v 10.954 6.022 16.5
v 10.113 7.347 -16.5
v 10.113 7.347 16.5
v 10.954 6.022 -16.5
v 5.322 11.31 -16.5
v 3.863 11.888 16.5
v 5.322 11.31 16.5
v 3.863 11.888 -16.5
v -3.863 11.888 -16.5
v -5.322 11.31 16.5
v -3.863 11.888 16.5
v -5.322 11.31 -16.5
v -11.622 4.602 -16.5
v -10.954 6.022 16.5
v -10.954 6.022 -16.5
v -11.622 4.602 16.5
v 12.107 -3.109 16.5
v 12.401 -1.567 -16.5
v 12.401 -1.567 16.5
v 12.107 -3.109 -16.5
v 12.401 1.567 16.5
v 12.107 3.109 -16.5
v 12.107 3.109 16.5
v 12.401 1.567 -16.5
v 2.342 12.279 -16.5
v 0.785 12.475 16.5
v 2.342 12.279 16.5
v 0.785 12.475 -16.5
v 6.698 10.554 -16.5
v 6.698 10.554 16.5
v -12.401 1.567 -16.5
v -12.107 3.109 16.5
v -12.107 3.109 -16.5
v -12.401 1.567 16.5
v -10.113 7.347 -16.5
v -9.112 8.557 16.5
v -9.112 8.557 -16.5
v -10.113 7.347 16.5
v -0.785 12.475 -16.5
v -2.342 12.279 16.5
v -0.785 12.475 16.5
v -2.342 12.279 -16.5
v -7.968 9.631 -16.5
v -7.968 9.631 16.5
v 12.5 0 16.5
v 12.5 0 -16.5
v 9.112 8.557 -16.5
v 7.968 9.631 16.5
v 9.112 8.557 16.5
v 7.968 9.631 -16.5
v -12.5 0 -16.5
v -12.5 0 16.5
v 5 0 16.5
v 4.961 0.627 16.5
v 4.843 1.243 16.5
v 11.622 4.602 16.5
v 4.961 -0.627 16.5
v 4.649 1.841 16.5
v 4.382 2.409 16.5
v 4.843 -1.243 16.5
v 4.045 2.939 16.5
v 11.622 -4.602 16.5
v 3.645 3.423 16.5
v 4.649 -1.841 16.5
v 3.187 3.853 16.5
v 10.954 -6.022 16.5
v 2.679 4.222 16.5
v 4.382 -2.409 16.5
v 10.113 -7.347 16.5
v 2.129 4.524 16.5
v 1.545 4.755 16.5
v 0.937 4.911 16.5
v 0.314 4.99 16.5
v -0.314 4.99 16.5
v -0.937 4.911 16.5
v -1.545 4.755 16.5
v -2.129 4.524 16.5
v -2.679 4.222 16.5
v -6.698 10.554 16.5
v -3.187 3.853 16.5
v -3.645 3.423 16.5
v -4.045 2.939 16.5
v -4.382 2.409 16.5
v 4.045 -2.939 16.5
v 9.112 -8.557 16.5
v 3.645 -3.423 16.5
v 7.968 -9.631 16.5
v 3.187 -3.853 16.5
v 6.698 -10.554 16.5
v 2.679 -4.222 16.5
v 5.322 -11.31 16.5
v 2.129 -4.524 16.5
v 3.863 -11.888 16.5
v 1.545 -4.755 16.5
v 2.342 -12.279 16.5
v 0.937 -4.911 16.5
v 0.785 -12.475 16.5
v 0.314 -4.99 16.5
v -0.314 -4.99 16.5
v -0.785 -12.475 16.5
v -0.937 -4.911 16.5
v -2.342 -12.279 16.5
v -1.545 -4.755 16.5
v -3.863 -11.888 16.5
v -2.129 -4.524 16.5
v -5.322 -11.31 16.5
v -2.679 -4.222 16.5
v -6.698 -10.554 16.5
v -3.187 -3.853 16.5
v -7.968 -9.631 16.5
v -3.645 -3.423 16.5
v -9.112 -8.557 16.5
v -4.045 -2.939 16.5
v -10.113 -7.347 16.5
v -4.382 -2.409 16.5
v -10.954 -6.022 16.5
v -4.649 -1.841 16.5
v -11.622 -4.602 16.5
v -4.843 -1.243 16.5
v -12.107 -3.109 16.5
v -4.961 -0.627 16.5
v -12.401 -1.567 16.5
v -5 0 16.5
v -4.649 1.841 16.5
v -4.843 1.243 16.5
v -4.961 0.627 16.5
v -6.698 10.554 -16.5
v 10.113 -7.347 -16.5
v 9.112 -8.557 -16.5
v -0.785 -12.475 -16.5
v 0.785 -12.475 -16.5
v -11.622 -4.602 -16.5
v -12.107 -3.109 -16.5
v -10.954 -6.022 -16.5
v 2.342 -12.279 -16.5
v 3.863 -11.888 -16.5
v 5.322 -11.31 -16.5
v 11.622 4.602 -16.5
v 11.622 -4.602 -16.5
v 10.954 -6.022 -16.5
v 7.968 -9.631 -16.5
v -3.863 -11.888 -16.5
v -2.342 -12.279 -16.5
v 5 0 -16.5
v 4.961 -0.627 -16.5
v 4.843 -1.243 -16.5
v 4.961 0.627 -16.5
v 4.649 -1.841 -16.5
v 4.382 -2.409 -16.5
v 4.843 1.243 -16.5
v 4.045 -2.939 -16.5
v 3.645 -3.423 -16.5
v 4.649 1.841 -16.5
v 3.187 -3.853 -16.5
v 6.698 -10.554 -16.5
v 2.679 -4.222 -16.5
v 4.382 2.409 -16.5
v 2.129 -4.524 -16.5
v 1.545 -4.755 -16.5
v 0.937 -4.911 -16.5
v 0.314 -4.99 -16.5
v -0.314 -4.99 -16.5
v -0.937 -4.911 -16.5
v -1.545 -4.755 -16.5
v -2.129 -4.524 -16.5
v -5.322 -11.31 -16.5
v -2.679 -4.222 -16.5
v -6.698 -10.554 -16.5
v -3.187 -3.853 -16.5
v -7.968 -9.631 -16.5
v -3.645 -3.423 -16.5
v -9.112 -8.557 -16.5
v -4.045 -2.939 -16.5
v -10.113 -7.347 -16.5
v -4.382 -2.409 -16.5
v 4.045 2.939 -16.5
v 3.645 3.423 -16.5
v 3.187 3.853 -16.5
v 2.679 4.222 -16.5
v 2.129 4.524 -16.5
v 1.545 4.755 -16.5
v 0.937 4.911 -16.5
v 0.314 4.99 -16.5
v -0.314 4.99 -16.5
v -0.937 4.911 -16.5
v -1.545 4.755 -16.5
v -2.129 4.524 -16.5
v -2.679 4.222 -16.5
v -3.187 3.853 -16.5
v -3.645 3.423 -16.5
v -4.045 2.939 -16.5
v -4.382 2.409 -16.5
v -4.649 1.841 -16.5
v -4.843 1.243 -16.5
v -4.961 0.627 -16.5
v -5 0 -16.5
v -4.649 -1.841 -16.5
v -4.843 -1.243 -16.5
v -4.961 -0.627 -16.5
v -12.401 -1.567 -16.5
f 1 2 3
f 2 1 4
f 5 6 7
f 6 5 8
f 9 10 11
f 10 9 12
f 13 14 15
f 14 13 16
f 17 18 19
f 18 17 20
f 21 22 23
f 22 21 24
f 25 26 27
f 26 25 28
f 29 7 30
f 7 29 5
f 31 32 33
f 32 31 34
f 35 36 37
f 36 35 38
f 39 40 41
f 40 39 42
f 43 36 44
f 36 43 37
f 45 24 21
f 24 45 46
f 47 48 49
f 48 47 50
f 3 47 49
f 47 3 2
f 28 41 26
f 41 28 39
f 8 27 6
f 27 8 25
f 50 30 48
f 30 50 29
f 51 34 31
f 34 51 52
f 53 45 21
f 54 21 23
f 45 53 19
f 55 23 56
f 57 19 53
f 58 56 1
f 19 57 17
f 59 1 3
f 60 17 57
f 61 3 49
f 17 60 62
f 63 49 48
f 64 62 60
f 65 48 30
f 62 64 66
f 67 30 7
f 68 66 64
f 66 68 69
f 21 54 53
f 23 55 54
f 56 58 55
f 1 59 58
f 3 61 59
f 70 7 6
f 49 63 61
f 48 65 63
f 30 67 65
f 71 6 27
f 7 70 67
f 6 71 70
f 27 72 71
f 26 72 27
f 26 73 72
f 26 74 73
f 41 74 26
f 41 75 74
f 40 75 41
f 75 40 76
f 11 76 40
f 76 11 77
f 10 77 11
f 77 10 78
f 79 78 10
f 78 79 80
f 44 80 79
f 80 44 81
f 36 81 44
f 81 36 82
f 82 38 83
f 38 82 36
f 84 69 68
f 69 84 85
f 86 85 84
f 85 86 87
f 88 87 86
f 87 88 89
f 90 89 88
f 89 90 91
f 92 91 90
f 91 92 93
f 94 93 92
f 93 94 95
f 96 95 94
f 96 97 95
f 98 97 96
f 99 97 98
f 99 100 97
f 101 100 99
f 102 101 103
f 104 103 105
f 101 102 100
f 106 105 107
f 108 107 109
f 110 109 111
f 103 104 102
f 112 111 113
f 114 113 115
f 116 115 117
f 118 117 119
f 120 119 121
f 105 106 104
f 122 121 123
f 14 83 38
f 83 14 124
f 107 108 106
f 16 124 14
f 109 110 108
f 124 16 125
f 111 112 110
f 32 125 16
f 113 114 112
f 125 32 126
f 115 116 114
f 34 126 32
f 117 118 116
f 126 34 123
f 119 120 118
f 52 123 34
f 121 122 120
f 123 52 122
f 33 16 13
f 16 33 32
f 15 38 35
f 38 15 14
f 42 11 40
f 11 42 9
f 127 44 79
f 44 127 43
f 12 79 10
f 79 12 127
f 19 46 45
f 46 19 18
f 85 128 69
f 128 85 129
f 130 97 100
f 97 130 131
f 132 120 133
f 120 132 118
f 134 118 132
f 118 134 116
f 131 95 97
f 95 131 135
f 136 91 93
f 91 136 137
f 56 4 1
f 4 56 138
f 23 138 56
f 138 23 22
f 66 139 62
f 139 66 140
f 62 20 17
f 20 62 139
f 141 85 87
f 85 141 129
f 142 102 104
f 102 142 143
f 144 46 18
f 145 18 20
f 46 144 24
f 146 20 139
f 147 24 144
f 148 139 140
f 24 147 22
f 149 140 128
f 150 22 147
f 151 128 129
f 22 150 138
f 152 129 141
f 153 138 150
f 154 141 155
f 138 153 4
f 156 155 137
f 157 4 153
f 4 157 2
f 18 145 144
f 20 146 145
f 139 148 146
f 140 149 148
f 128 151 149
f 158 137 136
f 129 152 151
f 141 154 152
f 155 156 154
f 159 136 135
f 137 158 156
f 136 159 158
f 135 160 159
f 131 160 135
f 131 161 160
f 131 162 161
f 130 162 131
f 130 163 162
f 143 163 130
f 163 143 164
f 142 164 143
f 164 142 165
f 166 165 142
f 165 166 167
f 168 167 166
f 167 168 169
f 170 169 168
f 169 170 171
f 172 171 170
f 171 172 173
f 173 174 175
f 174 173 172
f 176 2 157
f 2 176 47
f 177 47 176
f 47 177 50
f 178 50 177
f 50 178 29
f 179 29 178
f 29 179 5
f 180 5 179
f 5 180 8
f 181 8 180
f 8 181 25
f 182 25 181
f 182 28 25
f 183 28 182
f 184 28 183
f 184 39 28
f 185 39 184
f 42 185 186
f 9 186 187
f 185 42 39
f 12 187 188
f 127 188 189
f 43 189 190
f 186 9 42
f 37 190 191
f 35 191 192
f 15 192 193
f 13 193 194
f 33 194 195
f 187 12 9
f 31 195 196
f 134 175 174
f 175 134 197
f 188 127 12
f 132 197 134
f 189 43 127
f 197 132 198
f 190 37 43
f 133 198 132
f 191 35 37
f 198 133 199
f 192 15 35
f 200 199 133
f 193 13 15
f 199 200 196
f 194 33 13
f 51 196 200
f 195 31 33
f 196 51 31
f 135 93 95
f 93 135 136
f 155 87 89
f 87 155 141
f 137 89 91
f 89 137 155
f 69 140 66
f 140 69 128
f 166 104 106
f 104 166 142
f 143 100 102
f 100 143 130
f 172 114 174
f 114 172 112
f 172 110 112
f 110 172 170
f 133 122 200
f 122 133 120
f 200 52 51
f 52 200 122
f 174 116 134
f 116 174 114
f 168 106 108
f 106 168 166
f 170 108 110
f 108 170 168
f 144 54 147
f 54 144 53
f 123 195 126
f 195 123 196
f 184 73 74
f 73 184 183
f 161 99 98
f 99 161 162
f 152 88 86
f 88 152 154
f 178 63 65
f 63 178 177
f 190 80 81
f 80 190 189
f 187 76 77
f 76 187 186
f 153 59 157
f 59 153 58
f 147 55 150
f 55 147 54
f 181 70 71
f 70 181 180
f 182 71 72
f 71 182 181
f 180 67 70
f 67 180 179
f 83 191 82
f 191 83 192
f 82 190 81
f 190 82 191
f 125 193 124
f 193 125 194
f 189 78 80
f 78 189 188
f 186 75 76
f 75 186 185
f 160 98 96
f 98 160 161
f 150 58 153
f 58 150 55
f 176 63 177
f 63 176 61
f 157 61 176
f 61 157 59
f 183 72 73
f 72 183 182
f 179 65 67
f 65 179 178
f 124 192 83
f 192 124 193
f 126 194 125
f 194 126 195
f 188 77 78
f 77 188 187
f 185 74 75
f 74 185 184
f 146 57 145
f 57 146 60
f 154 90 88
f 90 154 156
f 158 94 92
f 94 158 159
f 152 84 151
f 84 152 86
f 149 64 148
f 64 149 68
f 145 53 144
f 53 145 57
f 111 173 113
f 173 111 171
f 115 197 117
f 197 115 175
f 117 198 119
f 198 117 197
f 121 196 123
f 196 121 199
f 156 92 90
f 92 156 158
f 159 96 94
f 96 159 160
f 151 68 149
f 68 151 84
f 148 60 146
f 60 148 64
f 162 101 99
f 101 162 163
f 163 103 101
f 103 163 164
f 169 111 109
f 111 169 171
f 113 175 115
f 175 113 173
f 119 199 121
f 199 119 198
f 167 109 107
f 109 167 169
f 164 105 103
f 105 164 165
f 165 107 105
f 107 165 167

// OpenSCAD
$fn = 50;


difference() {
	union() {
		translate(v = [0, 0, -16.5000000000]) {
			cylinder(h = 33, r = 12.5000000000);
		}
	}
	union() {
		translate(v = [0, 0, -100.0000000000]) {
			cylinder(h = 200, r = 5);
		}
	}
}
